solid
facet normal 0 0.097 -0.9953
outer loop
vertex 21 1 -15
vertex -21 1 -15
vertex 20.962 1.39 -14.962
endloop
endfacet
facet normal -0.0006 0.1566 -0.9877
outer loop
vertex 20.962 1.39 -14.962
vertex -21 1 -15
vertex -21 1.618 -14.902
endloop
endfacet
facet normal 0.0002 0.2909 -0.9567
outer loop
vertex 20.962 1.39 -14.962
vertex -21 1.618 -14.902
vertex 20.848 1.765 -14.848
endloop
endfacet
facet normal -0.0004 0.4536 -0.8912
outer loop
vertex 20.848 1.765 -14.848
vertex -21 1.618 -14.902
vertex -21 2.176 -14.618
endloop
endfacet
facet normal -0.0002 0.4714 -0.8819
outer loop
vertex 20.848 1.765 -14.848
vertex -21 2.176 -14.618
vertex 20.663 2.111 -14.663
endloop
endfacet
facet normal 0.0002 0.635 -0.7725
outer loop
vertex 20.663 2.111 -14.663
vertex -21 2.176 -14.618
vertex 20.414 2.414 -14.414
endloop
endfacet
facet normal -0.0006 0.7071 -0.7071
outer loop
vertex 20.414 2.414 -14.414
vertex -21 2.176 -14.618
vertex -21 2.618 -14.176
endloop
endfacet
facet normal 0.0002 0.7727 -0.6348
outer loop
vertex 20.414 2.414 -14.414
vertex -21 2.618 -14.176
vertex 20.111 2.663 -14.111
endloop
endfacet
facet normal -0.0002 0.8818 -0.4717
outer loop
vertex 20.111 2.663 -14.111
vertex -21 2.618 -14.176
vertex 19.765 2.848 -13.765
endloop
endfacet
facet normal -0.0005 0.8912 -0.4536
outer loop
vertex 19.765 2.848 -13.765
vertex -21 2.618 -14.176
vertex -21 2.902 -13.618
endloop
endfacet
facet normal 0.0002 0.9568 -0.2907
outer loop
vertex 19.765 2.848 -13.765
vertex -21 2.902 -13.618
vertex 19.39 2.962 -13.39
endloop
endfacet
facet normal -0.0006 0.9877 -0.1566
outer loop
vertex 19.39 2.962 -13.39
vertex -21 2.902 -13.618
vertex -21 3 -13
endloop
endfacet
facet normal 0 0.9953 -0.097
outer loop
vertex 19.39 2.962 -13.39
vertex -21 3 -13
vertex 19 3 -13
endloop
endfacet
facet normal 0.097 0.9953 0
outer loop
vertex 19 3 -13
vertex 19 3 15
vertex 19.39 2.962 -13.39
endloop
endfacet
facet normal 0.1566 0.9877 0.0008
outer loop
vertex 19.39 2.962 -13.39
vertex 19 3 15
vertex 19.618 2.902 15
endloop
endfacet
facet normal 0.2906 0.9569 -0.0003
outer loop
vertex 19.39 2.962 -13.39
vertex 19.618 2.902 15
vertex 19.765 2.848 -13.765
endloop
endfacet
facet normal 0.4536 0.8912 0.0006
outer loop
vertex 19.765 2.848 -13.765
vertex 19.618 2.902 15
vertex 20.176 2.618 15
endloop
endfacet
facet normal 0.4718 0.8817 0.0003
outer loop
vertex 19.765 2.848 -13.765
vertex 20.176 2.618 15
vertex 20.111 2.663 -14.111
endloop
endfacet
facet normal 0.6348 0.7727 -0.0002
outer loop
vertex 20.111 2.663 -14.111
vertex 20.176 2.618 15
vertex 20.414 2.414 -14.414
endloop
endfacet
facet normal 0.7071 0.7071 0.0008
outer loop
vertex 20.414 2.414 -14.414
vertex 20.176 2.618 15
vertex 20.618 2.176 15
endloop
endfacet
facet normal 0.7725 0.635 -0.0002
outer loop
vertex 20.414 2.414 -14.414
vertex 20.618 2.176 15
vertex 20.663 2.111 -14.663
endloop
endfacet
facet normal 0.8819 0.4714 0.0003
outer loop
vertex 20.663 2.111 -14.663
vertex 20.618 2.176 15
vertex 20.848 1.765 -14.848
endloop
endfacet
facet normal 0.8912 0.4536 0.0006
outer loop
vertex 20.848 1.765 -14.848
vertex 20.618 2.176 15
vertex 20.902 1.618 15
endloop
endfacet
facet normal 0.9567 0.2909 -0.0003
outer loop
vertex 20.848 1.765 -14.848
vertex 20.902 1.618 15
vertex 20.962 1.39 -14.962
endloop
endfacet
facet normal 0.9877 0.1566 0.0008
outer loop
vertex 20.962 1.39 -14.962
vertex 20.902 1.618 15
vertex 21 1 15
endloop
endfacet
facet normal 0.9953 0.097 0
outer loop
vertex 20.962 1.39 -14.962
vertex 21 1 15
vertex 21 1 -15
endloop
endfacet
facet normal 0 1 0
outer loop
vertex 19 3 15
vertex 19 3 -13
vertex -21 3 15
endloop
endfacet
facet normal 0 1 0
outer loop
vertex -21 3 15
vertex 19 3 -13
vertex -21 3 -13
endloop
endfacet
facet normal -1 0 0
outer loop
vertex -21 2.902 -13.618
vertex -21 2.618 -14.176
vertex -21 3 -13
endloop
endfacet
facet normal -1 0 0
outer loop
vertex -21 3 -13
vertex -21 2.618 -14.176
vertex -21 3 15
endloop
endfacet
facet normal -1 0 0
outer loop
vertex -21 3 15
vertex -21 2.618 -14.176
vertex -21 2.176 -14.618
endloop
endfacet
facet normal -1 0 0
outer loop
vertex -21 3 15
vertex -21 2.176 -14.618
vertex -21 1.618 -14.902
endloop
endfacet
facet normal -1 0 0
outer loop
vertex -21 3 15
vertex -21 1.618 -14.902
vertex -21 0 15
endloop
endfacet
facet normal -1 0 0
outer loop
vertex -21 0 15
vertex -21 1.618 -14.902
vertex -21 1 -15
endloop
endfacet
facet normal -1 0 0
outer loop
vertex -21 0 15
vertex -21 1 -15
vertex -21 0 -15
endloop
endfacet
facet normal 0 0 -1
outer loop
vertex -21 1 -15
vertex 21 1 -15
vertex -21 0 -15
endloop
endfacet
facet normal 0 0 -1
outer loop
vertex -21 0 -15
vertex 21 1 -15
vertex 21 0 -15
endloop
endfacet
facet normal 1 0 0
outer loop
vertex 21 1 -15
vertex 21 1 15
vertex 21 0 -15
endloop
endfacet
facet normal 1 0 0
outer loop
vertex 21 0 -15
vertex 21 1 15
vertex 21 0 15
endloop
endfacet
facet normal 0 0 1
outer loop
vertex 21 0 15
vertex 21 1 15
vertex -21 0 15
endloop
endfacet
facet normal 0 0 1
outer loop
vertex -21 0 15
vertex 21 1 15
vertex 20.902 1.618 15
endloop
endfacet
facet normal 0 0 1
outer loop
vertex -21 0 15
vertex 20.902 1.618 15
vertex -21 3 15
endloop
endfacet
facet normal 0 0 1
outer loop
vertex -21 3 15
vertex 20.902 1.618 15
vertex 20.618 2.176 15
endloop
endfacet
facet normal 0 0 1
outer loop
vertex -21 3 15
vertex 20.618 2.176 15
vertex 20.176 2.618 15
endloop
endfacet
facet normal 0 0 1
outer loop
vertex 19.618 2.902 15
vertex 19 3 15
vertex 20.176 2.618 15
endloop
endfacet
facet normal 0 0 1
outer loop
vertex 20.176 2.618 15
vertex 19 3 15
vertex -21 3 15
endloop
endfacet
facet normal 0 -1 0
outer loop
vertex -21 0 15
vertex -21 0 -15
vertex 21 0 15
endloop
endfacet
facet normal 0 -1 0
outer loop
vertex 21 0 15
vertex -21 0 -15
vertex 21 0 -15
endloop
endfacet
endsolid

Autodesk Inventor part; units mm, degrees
ref_plane "YZ Plane" through (0, 0, 0) normal (1, 0, 0) x (0, 1, 0)
ref_plane "XZ Plane" through (0, 0, 0) normal (0, 1, 0) x (-1, 0, 0)
ref_plane "XY Plane" through (0, 0, 0) normal (0, 0, 1) x (1, 0, 0)
sketch "Sketch1" plane through (0, 0, 0) normal (0, 1, 0) x (-1, 0, 0)
  line L0 (21, -15) -> (-21, -15)
  line L1 (-21, -15) -> (-21, 15)
  line L2 (-21, 15) -> (21, 15)
  line L3 (21, 15) -> (21, -15)
  point P0 (0, 0)
  point P1 (0, 0)
  point P2 (-21, 0)
  point P3 (21, 0)
  point P4 (0, -15)
  dimension "d0" = 42
  dimension "d1" = 30
extrude "Extrusion1" add sketch "Sketch1" along normal blind 3
fillet "Fillet1" radius 2 2 edges at (0, 3, -15) (21, 3, 0)
properties part number "Pieza Sensor Ultrasonico"
